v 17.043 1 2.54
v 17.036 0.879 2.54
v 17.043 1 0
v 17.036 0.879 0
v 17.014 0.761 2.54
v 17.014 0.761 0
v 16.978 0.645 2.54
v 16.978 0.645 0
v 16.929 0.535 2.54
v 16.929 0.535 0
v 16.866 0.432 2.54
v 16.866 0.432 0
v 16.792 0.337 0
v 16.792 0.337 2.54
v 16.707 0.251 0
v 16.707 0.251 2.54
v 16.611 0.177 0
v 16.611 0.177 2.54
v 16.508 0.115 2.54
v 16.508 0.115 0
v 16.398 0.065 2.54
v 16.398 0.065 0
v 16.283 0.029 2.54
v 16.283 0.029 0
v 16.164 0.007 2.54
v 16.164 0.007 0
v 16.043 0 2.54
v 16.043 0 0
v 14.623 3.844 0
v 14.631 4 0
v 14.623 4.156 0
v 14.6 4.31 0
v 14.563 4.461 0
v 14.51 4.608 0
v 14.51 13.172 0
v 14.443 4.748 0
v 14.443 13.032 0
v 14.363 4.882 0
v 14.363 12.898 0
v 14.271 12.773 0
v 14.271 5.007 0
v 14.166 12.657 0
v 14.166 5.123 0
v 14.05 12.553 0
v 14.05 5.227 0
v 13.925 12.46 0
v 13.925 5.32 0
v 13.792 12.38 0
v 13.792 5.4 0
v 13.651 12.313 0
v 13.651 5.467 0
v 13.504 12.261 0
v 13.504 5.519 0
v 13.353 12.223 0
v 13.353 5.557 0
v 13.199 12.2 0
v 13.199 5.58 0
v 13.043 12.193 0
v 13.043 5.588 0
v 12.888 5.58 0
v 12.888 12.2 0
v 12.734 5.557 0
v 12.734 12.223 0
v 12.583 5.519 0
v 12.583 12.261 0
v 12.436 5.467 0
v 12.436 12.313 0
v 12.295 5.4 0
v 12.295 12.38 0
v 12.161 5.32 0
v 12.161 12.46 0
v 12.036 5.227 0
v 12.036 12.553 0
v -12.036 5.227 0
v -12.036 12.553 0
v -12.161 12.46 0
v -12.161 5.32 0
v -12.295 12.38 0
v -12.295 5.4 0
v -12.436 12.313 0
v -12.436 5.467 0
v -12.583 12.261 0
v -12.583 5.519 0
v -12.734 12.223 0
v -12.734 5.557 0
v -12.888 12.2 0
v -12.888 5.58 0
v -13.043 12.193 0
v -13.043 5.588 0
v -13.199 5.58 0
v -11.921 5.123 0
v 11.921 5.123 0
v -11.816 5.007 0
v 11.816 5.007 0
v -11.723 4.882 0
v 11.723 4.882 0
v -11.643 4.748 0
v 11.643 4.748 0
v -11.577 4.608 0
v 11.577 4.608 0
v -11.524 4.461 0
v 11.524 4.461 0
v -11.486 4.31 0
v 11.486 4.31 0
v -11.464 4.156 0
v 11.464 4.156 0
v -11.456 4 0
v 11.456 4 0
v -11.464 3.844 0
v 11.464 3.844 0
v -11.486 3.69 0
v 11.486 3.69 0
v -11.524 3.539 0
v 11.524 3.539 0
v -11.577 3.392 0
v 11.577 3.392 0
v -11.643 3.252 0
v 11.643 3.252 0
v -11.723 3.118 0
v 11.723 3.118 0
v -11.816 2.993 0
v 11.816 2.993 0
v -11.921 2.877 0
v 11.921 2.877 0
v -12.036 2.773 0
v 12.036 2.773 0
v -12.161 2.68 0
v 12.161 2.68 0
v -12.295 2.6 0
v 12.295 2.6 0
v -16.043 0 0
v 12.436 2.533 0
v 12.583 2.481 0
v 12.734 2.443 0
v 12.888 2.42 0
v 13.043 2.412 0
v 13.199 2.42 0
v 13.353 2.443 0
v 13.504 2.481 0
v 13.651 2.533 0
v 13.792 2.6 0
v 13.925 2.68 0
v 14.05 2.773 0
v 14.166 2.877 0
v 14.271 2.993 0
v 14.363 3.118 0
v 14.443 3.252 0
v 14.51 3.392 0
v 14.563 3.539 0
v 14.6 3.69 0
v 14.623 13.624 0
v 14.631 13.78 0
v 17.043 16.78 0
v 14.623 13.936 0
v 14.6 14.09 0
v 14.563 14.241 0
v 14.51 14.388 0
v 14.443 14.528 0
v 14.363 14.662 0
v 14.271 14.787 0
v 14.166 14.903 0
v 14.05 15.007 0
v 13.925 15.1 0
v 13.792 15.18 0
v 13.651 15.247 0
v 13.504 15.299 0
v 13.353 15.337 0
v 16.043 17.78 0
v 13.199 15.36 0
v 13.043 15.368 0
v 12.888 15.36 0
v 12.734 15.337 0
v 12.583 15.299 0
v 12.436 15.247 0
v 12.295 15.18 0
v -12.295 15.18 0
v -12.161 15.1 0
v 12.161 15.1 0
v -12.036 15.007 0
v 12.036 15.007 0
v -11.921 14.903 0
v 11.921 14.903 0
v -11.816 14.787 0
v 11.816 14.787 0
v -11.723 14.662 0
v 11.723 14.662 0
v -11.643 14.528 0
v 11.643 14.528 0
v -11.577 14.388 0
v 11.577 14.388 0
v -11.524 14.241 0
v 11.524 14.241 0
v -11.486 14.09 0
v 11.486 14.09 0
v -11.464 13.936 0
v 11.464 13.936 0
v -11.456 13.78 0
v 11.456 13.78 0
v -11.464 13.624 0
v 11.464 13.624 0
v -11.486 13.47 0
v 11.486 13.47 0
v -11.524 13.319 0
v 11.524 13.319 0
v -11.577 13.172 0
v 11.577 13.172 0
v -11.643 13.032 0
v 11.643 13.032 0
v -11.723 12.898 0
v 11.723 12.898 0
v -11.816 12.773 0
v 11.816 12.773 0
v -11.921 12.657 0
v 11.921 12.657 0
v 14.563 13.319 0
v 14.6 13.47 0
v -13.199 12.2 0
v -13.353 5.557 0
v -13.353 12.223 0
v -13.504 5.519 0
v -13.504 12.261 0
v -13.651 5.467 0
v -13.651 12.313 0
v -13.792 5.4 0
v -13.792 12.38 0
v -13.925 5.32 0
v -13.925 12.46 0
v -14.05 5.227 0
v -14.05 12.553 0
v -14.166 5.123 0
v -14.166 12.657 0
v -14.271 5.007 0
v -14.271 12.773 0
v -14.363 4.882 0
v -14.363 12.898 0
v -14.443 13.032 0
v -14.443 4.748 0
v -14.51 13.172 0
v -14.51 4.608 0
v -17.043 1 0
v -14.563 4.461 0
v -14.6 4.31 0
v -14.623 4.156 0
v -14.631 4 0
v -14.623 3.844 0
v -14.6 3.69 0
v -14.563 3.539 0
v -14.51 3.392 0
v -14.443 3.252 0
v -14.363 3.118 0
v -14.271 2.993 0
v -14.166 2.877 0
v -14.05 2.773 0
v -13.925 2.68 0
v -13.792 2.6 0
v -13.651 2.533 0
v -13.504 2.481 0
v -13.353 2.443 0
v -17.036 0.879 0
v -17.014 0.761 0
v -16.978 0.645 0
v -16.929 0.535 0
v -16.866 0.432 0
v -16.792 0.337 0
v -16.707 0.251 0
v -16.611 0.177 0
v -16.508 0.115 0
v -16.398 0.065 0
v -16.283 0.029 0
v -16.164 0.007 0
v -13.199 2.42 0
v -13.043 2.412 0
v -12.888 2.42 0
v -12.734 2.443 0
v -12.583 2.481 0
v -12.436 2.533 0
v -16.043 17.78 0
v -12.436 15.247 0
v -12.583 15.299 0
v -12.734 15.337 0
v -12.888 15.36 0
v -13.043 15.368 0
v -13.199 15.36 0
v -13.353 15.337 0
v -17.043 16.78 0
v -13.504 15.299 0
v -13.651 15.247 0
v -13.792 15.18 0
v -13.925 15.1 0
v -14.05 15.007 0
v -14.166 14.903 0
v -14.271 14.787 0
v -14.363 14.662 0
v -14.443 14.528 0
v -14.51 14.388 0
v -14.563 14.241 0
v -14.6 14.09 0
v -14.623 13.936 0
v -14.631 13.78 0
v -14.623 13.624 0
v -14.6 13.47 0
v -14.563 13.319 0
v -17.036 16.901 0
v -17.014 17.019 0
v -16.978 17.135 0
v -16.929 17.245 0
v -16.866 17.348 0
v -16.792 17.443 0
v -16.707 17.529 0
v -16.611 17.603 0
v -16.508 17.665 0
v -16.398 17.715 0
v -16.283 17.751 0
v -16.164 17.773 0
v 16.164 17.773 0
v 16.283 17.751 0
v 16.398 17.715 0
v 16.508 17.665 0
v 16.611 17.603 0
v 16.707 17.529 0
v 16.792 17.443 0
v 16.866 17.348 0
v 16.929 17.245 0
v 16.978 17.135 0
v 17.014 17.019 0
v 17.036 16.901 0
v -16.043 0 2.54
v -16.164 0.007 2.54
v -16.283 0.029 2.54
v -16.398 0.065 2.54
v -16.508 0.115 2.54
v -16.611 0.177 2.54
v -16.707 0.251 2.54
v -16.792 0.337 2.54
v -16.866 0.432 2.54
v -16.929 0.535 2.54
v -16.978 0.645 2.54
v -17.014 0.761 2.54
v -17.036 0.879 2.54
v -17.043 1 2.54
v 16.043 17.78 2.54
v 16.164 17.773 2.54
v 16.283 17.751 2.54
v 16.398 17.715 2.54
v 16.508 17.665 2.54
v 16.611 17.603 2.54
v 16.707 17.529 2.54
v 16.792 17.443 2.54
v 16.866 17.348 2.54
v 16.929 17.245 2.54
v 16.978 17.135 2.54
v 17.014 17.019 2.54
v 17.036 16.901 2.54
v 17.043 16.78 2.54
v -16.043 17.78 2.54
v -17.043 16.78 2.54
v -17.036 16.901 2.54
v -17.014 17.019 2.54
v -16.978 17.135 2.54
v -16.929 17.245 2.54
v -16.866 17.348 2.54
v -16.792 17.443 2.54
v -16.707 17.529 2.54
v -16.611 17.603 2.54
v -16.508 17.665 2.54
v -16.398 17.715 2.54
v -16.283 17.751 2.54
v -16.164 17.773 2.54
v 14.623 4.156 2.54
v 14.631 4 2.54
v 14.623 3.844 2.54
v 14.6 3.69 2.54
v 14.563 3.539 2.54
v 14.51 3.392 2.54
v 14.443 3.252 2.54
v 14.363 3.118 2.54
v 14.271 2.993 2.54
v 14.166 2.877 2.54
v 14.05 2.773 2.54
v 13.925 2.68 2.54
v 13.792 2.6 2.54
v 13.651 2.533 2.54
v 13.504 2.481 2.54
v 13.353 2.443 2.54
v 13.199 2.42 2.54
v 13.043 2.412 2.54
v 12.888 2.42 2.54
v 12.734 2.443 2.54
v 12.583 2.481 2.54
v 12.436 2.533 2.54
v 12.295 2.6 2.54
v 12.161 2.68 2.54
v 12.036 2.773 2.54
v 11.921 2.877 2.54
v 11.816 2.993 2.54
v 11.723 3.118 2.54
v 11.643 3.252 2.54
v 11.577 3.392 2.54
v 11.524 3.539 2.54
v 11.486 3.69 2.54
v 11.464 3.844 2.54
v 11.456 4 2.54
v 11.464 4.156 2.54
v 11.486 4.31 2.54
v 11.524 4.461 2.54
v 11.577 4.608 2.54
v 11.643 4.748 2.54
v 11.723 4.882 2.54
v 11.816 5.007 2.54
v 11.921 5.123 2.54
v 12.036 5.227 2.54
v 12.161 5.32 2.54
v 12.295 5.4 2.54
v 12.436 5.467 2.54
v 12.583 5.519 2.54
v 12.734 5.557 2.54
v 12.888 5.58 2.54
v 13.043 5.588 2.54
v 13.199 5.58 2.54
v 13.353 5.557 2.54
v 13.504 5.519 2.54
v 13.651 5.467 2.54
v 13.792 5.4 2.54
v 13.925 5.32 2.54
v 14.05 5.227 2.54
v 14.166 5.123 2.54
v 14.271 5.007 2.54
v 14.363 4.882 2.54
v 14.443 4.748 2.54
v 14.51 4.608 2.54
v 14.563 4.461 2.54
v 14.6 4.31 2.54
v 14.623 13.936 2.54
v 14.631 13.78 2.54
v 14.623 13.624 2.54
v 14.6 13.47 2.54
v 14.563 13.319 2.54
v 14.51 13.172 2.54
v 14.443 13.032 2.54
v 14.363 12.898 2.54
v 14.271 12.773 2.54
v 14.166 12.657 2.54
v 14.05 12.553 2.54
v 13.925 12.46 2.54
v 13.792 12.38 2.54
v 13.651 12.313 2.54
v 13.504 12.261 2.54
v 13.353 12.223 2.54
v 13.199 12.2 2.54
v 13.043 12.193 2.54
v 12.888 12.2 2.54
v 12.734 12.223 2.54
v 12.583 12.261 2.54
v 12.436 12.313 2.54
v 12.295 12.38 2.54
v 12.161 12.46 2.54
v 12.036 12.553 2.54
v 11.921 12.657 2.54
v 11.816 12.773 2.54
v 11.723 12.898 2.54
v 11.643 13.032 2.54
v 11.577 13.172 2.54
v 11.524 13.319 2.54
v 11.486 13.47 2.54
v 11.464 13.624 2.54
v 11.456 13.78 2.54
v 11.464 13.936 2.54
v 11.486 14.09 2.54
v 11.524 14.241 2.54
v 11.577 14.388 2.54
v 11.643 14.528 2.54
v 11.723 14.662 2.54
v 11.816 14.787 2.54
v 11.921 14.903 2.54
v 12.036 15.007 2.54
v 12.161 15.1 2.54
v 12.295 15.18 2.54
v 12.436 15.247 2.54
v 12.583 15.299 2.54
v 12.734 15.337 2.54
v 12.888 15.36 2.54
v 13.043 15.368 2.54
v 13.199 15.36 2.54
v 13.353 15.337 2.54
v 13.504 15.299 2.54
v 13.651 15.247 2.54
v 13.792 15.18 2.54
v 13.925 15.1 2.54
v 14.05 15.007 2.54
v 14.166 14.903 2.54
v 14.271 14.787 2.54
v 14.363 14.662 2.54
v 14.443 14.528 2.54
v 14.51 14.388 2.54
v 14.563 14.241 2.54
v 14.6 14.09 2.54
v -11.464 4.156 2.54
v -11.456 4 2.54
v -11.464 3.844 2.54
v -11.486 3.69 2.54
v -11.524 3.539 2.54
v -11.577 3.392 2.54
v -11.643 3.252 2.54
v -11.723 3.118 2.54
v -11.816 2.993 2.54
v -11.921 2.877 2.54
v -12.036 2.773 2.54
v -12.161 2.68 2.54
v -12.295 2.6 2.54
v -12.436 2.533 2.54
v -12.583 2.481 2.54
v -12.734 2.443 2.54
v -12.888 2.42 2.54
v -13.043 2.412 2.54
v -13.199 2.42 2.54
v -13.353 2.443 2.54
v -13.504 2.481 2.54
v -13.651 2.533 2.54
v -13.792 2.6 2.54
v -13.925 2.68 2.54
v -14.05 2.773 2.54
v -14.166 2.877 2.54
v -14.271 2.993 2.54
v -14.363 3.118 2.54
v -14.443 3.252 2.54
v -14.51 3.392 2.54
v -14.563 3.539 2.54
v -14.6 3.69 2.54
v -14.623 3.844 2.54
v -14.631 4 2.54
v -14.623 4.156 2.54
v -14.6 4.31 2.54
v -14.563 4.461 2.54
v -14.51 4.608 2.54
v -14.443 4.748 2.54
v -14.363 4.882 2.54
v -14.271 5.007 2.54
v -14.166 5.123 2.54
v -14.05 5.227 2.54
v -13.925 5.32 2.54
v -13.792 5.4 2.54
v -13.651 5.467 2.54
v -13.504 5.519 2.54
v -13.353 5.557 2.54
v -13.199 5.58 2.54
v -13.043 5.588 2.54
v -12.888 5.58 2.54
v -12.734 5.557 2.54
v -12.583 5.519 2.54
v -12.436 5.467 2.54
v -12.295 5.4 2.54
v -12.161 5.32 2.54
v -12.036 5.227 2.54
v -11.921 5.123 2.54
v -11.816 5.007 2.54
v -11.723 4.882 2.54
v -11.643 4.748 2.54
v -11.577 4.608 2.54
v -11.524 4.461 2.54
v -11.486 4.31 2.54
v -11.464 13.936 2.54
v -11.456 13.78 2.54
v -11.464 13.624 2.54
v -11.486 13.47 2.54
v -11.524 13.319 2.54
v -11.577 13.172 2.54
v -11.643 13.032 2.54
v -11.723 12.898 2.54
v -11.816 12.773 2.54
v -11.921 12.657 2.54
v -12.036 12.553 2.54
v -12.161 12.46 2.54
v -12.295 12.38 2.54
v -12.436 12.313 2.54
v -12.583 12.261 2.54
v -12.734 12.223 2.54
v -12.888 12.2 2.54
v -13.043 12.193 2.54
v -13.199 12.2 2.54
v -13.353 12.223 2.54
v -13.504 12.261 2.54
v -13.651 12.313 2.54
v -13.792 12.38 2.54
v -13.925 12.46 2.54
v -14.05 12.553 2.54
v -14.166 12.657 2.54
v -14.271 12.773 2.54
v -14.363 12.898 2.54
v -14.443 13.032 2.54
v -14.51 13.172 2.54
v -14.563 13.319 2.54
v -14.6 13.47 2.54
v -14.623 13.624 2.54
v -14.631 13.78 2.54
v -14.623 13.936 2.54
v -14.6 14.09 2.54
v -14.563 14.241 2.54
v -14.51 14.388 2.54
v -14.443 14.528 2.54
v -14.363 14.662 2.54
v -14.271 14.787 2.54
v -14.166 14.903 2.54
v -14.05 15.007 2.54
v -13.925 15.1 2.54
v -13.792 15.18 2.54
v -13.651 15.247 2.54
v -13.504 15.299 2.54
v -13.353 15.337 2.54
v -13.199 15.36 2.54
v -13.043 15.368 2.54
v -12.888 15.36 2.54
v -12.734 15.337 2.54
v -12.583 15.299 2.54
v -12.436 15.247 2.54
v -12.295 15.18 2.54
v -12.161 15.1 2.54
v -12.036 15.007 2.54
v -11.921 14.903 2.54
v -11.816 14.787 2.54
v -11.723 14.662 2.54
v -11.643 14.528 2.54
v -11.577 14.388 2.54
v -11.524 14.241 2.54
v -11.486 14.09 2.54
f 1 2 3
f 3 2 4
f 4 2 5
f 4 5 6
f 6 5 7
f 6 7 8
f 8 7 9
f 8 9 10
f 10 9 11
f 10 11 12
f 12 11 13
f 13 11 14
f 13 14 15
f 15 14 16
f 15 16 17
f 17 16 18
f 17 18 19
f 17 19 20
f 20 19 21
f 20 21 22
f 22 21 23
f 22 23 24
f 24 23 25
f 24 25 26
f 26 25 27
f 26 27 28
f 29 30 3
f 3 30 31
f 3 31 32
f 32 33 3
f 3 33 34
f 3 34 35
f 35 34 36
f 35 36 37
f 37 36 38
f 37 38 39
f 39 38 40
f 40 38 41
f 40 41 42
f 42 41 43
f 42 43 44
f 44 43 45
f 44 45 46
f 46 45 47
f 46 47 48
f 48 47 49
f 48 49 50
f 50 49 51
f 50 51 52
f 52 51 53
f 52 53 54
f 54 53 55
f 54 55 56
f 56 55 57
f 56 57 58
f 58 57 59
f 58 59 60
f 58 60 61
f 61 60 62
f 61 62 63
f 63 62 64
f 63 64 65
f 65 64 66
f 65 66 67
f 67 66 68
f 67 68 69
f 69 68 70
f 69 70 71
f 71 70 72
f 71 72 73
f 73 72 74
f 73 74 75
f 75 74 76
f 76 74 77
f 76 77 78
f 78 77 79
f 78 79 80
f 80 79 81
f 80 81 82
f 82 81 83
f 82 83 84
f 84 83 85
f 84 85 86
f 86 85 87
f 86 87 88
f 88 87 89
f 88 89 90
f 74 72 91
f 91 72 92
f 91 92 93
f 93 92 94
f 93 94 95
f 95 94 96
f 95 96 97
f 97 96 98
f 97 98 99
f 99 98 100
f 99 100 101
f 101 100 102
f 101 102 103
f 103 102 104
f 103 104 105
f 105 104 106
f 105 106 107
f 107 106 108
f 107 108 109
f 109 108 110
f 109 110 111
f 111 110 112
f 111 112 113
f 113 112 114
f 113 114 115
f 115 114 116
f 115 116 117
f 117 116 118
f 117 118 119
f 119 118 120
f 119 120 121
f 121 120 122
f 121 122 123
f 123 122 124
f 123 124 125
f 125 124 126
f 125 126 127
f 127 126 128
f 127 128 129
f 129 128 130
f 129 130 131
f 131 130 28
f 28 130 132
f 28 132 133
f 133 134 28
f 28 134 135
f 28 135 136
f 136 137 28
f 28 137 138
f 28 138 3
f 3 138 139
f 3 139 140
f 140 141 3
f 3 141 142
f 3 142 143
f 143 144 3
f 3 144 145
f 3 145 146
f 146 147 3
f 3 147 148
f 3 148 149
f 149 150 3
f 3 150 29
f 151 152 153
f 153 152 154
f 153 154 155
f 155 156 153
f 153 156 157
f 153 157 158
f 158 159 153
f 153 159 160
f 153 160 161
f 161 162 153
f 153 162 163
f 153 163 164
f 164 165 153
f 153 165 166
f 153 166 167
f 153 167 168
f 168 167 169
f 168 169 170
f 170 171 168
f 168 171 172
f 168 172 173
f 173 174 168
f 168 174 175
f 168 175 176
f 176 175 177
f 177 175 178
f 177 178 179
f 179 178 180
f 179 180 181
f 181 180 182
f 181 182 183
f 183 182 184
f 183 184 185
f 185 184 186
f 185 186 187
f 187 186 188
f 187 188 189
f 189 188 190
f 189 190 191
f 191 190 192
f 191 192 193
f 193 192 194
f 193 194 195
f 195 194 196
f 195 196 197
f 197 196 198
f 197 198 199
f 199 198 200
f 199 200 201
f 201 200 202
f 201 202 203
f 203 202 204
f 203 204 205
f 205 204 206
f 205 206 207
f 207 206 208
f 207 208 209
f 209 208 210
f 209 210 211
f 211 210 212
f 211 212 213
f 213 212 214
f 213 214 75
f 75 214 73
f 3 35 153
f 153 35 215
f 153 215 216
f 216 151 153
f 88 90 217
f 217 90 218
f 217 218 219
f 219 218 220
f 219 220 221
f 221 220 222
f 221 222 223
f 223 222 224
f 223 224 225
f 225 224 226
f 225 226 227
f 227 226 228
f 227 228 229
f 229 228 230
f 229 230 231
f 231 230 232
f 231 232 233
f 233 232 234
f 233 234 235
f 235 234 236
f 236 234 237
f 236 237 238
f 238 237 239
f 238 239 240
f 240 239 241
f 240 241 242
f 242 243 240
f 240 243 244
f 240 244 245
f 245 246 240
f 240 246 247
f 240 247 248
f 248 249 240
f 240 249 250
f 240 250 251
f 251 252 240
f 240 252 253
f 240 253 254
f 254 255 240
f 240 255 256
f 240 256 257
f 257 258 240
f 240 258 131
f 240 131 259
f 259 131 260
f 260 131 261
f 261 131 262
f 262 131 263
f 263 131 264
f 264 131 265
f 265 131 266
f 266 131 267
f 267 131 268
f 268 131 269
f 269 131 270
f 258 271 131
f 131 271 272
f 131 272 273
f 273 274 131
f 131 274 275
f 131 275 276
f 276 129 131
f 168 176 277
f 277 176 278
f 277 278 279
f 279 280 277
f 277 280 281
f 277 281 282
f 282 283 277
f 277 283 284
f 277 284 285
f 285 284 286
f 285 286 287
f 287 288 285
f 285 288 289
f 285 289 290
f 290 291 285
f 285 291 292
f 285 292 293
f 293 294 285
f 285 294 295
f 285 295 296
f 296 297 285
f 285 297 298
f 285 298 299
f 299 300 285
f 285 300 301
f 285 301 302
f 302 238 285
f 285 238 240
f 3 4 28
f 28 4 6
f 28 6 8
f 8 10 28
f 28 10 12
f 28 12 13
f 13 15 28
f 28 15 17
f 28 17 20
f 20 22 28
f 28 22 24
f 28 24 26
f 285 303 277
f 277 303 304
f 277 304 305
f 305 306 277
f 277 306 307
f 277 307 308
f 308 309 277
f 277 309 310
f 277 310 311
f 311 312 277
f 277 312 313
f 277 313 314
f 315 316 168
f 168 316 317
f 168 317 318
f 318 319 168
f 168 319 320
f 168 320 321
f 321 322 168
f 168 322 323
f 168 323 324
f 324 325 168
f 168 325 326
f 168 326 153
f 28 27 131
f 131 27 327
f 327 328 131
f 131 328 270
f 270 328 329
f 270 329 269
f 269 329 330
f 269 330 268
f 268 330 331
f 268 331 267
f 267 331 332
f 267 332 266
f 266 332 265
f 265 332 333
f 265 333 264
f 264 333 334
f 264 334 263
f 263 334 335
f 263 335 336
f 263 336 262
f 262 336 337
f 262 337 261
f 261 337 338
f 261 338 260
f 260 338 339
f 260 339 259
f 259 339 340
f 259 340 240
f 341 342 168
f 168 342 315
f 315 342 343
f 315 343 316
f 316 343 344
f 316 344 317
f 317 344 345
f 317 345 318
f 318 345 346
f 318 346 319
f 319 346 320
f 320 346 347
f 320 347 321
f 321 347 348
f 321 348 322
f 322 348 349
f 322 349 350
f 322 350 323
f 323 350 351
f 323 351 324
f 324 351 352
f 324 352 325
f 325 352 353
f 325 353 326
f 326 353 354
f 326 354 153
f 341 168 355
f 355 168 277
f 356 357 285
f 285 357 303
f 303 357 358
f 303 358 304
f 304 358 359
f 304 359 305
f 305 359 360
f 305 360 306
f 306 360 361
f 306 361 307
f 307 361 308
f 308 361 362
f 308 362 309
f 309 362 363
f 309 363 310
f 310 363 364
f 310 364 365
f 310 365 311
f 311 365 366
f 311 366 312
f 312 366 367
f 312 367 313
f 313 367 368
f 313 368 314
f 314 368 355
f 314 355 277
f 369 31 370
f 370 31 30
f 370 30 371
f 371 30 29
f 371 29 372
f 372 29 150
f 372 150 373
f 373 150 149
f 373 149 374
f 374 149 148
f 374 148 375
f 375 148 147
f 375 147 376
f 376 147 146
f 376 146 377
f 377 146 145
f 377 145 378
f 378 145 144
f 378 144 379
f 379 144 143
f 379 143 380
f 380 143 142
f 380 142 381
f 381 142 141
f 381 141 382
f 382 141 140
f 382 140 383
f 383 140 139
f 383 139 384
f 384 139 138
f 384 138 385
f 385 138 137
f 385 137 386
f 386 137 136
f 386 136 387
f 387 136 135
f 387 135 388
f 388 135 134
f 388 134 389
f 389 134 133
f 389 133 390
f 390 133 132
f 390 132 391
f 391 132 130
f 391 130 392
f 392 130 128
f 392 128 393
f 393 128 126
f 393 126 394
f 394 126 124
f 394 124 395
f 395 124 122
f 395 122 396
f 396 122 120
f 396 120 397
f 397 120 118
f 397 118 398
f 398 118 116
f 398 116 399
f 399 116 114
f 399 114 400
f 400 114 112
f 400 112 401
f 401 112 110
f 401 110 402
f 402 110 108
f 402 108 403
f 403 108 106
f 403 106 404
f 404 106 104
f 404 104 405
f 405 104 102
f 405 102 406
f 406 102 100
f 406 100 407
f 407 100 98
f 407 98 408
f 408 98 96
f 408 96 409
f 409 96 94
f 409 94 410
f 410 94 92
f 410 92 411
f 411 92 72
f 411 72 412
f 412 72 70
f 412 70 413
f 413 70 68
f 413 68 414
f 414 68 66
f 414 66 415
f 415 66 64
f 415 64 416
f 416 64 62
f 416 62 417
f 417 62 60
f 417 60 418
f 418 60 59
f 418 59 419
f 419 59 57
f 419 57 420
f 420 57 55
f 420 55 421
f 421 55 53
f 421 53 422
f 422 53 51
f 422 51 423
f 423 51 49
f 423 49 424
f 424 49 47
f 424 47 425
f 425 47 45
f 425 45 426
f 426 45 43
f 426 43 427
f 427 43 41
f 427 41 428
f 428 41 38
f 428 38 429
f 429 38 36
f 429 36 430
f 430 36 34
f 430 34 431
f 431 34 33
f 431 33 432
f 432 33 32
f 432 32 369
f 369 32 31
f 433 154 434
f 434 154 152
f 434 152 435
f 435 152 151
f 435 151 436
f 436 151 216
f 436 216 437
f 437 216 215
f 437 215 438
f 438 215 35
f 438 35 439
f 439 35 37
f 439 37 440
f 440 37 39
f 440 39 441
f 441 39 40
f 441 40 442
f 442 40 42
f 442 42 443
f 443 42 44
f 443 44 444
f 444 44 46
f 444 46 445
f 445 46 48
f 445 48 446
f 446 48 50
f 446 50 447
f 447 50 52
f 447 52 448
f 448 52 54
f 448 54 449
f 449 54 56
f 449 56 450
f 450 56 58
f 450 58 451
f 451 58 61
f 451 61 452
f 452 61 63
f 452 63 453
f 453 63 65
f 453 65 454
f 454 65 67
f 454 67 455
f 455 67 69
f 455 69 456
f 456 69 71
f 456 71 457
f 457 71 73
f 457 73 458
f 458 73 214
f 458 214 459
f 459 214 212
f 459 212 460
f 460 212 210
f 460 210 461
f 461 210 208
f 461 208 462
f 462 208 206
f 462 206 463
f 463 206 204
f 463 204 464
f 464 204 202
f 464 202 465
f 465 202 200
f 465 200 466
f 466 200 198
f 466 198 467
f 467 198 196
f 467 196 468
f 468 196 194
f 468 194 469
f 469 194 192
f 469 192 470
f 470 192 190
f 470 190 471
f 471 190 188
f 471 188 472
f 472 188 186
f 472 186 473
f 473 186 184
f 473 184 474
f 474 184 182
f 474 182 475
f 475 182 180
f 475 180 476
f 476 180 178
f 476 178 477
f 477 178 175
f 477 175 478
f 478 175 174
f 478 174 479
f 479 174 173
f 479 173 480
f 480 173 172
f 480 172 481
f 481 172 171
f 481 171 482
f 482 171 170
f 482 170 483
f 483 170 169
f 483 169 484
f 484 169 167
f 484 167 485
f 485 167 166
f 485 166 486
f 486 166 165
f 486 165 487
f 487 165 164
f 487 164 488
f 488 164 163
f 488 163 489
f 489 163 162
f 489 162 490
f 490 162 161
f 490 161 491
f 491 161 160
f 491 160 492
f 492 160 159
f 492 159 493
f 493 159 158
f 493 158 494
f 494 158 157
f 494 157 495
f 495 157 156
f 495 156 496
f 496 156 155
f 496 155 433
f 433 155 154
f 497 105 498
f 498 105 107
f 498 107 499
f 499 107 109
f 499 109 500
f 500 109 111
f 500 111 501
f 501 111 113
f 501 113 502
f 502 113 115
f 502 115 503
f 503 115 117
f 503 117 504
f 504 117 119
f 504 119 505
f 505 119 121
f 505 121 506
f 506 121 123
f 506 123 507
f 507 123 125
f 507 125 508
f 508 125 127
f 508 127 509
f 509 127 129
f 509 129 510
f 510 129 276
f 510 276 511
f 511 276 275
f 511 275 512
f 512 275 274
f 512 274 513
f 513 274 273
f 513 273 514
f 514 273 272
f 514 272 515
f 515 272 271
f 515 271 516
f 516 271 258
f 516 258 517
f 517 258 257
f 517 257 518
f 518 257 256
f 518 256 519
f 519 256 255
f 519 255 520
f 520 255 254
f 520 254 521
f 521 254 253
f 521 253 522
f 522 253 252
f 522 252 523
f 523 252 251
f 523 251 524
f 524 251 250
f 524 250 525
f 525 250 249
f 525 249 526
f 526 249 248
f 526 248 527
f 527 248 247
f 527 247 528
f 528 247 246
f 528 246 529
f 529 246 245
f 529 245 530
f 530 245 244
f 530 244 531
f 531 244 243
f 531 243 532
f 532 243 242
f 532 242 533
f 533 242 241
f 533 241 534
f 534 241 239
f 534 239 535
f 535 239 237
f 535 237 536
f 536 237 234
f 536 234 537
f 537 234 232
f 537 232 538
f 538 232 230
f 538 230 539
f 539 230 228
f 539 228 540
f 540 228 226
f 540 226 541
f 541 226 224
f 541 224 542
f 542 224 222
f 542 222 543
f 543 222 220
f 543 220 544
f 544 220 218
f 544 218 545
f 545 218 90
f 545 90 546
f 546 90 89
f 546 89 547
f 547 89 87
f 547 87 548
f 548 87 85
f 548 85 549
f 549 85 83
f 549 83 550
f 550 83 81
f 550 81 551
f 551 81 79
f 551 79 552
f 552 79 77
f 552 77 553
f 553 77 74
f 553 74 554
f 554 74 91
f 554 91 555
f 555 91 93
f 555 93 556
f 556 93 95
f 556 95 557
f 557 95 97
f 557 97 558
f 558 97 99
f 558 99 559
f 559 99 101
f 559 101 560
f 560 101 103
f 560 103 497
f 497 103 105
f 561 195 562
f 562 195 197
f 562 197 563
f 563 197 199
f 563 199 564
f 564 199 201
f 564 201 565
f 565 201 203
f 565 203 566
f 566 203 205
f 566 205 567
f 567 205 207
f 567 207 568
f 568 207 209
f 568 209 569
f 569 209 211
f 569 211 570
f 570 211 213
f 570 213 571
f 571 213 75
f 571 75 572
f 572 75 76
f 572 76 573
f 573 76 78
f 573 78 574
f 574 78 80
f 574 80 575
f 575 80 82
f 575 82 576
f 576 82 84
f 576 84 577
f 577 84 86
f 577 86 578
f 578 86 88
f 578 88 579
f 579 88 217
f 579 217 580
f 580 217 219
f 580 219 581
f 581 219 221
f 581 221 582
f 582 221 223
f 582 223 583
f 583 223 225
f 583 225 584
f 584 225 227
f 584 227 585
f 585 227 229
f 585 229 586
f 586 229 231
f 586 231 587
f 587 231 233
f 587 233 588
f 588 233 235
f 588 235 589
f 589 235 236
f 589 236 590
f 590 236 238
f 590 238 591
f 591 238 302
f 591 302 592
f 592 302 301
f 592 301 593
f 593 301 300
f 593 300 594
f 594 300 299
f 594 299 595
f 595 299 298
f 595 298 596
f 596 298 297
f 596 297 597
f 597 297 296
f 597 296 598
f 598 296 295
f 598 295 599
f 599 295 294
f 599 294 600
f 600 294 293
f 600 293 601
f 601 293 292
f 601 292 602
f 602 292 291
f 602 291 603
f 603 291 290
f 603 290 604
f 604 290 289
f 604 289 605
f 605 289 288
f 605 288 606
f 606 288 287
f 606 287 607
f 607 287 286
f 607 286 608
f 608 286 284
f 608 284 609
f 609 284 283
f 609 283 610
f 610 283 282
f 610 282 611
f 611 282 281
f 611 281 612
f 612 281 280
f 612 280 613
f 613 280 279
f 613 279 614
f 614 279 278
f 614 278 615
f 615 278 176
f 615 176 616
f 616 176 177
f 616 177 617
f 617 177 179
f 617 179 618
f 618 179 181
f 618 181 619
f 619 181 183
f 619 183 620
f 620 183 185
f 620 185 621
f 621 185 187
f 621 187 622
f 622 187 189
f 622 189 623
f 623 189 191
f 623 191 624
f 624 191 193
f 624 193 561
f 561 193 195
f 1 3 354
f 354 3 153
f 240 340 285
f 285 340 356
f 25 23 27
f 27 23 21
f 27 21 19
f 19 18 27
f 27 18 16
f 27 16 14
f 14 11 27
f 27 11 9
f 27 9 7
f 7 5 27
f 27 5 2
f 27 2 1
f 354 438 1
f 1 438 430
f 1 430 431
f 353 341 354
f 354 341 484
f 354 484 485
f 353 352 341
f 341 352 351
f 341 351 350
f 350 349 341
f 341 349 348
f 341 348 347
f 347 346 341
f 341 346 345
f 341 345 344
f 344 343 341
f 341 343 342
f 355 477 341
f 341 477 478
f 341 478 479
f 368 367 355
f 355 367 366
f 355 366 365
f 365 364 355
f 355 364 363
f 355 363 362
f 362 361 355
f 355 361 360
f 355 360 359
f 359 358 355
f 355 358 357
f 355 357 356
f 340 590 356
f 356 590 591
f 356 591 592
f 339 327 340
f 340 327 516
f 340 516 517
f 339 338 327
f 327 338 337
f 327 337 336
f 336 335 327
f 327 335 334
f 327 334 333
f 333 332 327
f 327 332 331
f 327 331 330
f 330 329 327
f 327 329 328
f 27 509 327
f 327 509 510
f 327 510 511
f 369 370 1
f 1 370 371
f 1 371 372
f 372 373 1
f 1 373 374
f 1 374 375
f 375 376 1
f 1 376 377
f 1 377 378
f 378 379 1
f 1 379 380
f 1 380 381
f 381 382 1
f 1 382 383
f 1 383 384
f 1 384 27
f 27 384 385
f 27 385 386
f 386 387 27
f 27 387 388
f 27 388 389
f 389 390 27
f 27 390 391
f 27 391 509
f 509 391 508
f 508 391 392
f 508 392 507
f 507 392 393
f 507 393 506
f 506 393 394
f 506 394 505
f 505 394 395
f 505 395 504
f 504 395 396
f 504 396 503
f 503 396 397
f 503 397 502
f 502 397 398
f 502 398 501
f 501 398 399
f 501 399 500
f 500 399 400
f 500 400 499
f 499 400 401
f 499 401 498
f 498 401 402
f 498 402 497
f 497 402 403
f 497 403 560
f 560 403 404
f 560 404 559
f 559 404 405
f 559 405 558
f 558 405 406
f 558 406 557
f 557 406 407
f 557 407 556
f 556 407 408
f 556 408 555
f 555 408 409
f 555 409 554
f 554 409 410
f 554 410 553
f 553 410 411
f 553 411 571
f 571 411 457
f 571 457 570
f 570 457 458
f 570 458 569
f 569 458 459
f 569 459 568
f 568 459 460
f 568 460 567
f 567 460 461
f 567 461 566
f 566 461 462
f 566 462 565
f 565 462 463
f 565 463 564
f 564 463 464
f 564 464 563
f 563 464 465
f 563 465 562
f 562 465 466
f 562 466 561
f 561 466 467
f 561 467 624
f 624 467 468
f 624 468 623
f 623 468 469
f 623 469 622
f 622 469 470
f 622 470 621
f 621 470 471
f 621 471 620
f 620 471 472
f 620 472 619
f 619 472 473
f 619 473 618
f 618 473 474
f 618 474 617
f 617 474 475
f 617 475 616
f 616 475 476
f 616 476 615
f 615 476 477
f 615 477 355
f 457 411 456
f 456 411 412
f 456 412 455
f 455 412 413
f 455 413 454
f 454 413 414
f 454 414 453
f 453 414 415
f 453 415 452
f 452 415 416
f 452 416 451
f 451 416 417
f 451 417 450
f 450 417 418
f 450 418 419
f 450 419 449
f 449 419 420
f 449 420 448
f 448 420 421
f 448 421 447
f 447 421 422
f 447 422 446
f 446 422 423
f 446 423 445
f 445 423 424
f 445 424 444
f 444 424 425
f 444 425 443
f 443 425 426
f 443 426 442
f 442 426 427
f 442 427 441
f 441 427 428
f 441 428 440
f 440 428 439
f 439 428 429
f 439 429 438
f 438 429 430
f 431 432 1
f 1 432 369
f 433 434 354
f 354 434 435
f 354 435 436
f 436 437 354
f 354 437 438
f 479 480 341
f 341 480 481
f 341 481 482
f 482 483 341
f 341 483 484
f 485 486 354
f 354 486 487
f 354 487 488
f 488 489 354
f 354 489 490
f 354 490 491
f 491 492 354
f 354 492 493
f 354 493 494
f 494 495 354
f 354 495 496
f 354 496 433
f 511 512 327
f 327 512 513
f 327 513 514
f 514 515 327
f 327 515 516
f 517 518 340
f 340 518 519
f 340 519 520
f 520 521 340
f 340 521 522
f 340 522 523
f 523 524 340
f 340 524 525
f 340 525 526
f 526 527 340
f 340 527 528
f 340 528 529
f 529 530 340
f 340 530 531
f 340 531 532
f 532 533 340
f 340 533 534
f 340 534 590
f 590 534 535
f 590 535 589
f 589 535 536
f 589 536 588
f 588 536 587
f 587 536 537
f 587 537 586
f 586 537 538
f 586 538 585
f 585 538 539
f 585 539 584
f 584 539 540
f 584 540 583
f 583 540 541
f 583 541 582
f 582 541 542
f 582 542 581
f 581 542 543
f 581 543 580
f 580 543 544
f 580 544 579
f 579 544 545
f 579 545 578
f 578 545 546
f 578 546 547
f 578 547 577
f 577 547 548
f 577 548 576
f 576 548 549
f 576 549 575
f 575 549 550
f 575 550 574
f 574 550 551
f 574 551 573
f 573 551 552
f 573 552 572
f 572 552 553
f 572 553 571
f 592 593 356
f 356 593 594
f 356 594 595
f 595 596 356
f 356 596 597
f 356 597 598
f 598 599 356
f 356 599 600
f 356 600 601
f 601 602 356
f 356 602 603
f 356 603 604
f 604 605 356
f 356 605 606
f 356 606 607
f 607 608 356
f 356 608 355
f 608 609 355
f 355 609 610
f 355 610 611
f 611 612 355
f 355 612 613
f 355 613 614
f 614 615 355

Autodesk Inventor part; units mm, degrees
ref_plane "YZ Plane" through (0, 0, 0) normal (1, 0, 0) x (0, 1, 0)
ref_plane "XZ Plane" through (0, 0, 0) normal (0, 1, 0) x (-1, 0, 0)
ref_plane "XY Plane" through (0, 0, 0) normal (0, 0, 1) x (1, 0, 0)
sketch "Base" plane through (0, 0, 0) normal (0, 0, 1) x (1, 0, 0)
  line L0 (-17.0434, 17.78) -> (17.0434, 17.78)
  line L1 (17.0434, 17.78) -> (17.0434, 0)
  line L2 (17.0434, 0) -> (-17.0434, 0)
  line L3 (-17.0434, 0) -> (-17.0434, 17.78)
  circle A0 centre (13.0434, 13.78) radius 4 construction
  circle A1 centre (-13.0434, 13.78) radius 4 construction
  circle A2 centre (-13.0434, 4) radius 4 construction
  circle A3 centre (13.0434, 4) radius 4 construction
  circle A4 centre (-13.0434, 13.78) radius 1.5875
  circle A5 centre (-13.0434, 4) radius 1.5875
  circle A6 centre (13.0434, 13.78) radius 1.5875
  circle A7 centre (13.0434, 4) radius 1.5875
  point P0 (0, 0)
  point P1 (0, 28.2865)
  point P2 (0, 46.7013)
  point P3 (0, 0)
  dimension "d0" = 17.78
  dimension "d1" = 8
  dimension "d2" = 34.0868
  dimension "d3" = 3.175
extrude "Plate1" add sketch "Base" along normal blind 2.54
fillet "BaseROundFeature" radius 1 4 edges at (-17.0434, 17.78, 1.27) (17.0434, 17.78, 1.27) (-17.0434, 0, 1.27) (17.0434, 0, 1.27)
equation "\"d4\" = Thickness"
equation "\"BendRadius\" = Thickness"
equation "\"BendReliefWidth\" = Thickness"
equation "\"BendReliefDepth\" = 0.5 * Thickness"
equation "\"CornerReliefSize\" = 4 * Thickness"
equation "\"MinimumRemnant\" = 2 * Thickness"
equation "\"TransitionRadius\" = BendRadius"
equation "\"JacobiRadiusSize\" = BendRadius"
equation "\"GapSize\" = Thickness"
equation "\"Thickness\" = 2.54"
properties part number "BatteryPlate"
